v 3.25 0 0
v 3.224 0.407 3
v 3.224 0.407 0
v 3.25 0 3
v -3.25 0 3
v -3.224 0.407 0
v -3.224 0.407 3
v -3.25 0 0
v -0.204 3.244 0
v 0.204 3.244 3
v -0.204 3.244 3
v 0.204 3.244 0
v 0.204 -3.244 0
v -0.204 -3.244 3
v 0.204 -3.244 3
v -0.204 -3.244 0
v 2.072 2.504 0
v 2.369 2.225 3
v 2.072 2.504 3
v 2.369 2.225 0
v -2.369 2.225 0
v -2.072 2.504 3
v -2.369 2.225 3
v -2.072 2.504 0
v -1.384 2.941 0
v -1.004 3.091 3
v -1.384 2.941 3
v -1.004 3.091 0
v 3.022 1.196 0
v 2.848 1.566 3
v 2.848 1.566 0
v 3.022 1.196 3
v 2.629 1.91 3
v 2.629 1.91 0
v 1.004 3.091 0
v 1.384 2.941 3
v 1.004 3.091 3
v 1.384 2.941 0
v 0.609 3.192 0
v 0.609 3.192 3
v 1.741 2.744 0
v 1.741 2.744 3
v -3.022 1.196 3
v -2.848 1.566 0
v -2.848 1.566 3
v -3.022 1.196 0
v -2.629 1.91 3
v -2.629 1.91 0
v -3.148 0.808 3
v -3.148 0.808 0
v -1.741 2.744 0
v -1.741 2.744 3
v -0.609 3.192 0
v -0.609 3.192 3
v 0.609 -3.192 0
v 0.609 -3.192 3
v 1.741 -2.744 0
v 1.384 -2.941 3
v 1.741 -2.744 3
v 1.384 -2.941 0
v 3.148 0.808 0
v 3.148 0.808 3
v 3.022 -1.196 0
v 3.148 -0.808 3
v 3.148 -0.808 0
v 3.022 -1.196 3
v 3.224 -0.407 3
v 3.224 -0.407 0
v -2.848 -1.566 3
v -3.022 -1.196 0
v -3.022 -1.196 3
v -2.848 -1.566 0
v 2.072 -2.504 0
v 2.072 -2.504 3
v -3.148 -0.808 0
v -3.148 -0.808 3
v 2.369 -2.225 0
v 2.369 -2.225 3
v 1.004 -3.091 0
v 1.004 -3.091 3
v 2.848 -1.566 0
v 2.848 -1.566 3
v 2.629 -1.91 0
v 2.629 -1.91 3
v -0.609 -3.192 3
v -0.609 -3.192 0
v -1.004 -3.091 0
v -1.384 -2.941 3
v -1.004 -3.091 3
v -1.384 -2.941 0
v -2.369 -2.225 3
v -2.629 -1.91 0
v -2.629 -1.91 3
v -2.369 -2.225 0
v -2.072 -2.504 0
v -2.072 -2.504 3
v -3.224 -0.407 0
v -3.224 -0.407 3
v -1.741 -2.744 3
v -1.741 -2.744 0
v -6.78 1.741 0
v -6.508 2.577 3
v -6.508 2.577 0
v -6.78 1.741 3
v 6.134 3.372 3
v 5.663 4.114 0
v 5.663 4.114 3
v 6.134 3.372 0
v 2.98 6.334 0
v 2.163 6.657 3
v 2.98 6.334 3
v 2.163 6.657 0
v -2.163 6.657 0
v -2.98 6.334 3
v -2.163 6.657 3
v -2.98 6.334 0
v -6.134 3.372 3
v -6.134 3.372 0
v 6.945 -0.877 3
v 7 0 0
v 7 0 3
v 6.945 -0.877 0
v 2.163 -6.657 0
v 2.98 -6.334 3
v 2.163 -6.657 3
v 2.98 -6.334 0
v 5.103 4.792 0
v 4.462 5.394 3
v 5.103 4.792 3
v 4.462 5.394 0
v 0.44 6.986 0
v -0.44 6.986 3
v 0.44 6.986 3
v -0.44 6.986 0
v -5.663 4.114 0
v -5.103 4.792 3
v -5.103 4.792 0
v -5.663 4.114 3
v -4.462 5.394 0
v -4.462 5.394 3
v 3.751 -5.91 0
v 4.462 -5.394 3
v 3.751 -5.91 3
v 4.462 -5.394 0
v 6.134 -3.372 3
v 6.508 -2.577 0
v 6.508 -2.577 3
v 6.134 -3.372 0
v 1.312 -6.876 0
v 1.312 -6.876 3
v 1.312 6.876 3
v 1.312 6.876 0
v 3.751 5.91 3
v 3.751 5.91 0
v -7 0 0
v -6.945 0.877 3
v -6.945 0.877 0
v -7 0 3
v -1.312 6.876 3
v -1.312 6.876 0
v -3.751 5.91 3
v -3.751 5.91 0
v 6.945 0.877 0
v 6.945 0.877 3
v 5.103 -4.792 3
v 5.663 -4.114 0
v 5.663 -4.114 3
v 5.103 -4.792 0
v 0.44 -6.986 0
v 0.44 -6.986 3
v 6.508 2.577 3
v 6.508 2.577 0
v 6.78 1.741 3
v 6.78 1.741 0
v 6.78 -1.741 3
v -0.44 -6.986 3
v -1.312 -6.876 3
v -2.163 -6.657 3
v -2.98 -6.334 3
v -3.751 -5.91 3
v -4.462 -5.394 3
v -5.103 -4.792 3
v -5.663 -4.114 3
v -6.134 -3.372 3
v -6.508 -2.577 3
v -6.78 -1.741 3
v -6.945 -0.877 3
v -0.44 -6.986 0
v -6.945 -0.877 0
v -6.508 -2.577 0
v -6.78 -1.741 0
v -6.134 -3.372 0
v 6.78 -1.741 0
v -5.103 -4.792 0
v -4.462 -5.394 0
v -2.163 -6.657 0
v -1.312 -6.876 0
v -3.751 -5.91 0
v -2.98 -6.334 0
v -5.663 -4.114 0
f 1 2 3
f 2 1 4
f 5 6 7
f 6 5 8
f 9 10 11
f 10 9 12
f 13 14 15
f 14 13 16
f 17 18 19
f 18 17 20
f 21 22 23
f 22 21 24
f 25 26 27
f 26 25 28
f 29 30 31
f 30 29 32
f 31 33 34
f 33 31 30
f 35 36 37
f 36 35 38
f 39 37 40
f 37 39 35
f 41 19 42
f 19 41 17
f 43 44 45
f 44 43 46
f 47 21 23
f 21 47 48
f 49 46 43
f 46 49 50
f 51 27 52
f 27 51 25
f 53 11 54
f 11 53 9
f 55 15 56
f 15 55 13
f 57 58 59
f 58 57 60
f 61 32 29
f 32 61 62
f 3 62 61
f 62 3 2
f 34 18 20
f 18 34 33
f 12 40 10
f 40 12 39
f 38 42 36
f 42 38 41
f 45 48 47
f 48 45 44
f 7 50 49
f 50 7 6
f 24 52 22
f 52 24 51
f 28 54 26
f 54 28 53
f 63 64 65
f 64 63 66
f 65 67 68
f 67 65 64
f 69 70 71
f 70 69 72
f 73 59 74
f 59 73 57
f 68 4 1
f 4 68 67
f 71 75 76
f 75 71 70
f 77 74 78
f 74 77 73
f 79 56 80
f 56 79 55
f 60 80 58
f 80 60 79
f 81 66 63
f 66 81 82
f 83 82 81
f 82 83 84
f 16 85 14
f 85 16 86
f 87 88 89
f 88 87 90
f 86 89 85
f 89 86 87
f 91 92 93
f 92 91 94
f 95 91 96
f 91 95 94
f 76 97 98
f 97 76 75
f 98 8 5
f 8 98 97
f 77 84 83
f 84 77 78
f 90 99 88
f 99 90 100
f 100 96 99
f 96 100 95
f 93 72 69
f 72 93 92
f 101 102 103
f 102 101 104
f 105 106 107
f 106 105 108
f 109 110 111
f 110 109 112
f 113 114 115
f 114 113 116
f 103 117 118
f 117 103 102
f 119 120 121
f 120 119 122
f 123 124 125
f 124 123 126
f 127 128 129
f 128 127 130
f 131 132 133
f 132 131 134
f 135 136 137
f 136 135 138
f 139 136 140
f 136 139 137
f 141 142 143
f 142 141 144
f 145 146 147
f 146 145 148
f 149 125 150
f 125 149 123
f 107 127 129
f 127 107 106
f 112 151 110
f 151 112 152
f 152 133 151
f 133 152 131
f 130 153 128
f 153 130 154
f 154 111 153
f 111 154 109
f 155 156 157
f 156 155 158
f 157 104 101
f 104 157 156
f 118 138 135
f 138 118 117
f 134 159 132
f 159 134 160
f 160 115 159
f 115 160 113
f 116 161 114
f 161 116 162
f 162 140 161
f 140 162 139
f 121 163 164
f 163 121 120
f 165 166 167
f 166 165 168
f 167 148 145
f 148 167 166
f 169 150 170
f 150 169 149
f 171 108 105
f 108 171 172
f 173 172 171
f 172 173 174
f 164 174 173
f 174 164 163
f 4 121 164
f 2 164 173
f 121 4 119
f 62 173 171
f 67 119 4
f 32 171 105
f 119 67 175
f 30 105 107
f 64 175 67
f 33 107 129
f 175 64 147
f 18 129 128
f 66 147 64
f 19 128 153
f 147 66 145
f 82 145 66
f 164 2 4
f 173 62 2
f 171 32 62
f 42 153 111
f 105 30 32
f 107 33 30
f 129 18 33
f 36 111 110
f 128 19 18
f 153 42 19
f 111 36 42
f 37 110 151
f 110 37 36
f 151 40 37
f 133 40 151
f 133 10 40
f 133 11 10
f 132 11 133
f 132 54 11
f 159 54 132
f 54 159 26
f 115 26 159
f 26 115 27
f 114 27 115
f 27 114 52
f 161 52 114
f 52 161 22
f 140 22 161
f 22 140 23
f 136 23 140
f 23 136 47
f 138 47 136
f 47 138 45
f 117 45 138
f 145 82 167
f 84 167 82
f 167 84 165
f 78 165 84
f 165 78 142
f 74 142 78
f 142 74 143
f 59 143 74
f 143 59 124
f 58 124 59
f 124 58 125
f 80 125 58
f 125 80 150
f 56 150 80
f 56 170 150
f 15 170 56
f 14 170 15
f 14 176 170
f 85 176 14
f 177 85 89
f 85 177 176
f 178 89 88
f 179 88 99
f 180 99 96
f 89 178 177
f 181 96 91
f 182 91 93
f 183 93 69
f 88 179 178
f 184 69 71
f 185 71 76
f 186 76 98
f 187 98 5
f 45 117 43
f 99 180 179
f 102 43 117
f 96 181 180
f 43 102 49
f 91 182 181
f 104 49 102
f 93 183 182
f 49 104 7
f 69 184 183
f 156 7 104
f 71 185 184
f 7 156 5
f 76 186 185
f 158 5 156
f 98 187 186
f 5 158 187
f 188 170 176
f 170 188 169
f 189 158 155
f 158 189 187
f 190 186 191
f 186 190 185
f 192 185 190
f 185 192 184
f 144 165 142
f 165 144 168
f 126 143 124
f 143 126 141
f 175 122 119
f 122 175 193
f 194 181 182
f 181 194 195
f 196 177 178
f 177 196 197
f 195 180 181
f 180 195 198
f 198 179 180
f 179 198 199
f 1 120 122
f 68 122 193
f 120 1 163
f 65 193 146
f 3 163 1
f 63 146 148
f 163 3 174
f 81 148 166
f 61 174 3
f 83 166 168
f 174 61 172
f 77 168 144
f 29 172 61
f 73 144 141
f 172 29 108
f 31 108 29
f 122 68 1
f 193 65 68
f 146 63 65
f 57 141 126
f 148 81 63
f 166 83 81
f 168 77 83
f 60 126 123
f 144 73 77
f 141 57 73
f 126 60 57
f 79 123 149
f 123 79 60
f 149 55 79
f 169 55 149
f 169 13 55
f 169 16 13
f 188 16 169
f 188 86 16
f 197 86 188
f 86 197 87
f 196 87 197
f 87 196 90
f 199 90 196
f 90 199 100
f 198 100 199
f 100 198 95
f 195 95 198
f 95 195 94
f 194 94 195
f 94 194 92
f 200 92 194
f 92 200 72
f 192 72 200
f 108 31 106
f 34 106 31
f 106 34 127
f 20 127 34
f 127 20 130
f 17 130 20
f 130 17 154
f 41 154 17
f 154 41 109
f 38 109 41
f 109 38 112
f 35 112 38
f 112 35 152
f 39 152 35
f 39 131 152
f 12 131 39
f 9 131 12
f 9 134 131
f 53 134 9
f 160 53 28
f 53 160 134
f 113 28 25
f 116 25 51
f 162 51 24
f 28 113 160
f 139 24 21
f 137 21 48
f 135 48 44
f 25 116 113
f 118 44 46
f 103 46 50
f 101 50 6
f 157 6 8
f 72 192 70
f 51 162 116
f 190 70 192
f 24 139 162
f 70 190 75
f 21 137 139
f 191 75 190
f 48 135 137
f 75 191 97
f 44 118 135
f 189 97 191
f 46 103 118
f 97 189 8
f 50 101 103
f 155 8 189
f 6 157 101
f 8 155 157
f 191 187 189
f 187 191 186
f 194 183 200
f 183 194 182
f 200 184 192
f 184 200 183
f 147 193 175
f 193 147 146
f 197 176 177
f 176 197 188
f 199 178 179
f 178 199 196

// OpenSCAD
$fn = 50;


difference() {
	union() {
		cylinder(h = 3, r = 7.0000000000);
	}
	union() {
		translate(v = [0, 0, -100]) {
			cylinder(h = 200, r = 3.2500000000);
		}
		translate(v = [0, 0, -100]) {
			cylinder(h = 200, r = 1.8000000000);
		}
	}
}
